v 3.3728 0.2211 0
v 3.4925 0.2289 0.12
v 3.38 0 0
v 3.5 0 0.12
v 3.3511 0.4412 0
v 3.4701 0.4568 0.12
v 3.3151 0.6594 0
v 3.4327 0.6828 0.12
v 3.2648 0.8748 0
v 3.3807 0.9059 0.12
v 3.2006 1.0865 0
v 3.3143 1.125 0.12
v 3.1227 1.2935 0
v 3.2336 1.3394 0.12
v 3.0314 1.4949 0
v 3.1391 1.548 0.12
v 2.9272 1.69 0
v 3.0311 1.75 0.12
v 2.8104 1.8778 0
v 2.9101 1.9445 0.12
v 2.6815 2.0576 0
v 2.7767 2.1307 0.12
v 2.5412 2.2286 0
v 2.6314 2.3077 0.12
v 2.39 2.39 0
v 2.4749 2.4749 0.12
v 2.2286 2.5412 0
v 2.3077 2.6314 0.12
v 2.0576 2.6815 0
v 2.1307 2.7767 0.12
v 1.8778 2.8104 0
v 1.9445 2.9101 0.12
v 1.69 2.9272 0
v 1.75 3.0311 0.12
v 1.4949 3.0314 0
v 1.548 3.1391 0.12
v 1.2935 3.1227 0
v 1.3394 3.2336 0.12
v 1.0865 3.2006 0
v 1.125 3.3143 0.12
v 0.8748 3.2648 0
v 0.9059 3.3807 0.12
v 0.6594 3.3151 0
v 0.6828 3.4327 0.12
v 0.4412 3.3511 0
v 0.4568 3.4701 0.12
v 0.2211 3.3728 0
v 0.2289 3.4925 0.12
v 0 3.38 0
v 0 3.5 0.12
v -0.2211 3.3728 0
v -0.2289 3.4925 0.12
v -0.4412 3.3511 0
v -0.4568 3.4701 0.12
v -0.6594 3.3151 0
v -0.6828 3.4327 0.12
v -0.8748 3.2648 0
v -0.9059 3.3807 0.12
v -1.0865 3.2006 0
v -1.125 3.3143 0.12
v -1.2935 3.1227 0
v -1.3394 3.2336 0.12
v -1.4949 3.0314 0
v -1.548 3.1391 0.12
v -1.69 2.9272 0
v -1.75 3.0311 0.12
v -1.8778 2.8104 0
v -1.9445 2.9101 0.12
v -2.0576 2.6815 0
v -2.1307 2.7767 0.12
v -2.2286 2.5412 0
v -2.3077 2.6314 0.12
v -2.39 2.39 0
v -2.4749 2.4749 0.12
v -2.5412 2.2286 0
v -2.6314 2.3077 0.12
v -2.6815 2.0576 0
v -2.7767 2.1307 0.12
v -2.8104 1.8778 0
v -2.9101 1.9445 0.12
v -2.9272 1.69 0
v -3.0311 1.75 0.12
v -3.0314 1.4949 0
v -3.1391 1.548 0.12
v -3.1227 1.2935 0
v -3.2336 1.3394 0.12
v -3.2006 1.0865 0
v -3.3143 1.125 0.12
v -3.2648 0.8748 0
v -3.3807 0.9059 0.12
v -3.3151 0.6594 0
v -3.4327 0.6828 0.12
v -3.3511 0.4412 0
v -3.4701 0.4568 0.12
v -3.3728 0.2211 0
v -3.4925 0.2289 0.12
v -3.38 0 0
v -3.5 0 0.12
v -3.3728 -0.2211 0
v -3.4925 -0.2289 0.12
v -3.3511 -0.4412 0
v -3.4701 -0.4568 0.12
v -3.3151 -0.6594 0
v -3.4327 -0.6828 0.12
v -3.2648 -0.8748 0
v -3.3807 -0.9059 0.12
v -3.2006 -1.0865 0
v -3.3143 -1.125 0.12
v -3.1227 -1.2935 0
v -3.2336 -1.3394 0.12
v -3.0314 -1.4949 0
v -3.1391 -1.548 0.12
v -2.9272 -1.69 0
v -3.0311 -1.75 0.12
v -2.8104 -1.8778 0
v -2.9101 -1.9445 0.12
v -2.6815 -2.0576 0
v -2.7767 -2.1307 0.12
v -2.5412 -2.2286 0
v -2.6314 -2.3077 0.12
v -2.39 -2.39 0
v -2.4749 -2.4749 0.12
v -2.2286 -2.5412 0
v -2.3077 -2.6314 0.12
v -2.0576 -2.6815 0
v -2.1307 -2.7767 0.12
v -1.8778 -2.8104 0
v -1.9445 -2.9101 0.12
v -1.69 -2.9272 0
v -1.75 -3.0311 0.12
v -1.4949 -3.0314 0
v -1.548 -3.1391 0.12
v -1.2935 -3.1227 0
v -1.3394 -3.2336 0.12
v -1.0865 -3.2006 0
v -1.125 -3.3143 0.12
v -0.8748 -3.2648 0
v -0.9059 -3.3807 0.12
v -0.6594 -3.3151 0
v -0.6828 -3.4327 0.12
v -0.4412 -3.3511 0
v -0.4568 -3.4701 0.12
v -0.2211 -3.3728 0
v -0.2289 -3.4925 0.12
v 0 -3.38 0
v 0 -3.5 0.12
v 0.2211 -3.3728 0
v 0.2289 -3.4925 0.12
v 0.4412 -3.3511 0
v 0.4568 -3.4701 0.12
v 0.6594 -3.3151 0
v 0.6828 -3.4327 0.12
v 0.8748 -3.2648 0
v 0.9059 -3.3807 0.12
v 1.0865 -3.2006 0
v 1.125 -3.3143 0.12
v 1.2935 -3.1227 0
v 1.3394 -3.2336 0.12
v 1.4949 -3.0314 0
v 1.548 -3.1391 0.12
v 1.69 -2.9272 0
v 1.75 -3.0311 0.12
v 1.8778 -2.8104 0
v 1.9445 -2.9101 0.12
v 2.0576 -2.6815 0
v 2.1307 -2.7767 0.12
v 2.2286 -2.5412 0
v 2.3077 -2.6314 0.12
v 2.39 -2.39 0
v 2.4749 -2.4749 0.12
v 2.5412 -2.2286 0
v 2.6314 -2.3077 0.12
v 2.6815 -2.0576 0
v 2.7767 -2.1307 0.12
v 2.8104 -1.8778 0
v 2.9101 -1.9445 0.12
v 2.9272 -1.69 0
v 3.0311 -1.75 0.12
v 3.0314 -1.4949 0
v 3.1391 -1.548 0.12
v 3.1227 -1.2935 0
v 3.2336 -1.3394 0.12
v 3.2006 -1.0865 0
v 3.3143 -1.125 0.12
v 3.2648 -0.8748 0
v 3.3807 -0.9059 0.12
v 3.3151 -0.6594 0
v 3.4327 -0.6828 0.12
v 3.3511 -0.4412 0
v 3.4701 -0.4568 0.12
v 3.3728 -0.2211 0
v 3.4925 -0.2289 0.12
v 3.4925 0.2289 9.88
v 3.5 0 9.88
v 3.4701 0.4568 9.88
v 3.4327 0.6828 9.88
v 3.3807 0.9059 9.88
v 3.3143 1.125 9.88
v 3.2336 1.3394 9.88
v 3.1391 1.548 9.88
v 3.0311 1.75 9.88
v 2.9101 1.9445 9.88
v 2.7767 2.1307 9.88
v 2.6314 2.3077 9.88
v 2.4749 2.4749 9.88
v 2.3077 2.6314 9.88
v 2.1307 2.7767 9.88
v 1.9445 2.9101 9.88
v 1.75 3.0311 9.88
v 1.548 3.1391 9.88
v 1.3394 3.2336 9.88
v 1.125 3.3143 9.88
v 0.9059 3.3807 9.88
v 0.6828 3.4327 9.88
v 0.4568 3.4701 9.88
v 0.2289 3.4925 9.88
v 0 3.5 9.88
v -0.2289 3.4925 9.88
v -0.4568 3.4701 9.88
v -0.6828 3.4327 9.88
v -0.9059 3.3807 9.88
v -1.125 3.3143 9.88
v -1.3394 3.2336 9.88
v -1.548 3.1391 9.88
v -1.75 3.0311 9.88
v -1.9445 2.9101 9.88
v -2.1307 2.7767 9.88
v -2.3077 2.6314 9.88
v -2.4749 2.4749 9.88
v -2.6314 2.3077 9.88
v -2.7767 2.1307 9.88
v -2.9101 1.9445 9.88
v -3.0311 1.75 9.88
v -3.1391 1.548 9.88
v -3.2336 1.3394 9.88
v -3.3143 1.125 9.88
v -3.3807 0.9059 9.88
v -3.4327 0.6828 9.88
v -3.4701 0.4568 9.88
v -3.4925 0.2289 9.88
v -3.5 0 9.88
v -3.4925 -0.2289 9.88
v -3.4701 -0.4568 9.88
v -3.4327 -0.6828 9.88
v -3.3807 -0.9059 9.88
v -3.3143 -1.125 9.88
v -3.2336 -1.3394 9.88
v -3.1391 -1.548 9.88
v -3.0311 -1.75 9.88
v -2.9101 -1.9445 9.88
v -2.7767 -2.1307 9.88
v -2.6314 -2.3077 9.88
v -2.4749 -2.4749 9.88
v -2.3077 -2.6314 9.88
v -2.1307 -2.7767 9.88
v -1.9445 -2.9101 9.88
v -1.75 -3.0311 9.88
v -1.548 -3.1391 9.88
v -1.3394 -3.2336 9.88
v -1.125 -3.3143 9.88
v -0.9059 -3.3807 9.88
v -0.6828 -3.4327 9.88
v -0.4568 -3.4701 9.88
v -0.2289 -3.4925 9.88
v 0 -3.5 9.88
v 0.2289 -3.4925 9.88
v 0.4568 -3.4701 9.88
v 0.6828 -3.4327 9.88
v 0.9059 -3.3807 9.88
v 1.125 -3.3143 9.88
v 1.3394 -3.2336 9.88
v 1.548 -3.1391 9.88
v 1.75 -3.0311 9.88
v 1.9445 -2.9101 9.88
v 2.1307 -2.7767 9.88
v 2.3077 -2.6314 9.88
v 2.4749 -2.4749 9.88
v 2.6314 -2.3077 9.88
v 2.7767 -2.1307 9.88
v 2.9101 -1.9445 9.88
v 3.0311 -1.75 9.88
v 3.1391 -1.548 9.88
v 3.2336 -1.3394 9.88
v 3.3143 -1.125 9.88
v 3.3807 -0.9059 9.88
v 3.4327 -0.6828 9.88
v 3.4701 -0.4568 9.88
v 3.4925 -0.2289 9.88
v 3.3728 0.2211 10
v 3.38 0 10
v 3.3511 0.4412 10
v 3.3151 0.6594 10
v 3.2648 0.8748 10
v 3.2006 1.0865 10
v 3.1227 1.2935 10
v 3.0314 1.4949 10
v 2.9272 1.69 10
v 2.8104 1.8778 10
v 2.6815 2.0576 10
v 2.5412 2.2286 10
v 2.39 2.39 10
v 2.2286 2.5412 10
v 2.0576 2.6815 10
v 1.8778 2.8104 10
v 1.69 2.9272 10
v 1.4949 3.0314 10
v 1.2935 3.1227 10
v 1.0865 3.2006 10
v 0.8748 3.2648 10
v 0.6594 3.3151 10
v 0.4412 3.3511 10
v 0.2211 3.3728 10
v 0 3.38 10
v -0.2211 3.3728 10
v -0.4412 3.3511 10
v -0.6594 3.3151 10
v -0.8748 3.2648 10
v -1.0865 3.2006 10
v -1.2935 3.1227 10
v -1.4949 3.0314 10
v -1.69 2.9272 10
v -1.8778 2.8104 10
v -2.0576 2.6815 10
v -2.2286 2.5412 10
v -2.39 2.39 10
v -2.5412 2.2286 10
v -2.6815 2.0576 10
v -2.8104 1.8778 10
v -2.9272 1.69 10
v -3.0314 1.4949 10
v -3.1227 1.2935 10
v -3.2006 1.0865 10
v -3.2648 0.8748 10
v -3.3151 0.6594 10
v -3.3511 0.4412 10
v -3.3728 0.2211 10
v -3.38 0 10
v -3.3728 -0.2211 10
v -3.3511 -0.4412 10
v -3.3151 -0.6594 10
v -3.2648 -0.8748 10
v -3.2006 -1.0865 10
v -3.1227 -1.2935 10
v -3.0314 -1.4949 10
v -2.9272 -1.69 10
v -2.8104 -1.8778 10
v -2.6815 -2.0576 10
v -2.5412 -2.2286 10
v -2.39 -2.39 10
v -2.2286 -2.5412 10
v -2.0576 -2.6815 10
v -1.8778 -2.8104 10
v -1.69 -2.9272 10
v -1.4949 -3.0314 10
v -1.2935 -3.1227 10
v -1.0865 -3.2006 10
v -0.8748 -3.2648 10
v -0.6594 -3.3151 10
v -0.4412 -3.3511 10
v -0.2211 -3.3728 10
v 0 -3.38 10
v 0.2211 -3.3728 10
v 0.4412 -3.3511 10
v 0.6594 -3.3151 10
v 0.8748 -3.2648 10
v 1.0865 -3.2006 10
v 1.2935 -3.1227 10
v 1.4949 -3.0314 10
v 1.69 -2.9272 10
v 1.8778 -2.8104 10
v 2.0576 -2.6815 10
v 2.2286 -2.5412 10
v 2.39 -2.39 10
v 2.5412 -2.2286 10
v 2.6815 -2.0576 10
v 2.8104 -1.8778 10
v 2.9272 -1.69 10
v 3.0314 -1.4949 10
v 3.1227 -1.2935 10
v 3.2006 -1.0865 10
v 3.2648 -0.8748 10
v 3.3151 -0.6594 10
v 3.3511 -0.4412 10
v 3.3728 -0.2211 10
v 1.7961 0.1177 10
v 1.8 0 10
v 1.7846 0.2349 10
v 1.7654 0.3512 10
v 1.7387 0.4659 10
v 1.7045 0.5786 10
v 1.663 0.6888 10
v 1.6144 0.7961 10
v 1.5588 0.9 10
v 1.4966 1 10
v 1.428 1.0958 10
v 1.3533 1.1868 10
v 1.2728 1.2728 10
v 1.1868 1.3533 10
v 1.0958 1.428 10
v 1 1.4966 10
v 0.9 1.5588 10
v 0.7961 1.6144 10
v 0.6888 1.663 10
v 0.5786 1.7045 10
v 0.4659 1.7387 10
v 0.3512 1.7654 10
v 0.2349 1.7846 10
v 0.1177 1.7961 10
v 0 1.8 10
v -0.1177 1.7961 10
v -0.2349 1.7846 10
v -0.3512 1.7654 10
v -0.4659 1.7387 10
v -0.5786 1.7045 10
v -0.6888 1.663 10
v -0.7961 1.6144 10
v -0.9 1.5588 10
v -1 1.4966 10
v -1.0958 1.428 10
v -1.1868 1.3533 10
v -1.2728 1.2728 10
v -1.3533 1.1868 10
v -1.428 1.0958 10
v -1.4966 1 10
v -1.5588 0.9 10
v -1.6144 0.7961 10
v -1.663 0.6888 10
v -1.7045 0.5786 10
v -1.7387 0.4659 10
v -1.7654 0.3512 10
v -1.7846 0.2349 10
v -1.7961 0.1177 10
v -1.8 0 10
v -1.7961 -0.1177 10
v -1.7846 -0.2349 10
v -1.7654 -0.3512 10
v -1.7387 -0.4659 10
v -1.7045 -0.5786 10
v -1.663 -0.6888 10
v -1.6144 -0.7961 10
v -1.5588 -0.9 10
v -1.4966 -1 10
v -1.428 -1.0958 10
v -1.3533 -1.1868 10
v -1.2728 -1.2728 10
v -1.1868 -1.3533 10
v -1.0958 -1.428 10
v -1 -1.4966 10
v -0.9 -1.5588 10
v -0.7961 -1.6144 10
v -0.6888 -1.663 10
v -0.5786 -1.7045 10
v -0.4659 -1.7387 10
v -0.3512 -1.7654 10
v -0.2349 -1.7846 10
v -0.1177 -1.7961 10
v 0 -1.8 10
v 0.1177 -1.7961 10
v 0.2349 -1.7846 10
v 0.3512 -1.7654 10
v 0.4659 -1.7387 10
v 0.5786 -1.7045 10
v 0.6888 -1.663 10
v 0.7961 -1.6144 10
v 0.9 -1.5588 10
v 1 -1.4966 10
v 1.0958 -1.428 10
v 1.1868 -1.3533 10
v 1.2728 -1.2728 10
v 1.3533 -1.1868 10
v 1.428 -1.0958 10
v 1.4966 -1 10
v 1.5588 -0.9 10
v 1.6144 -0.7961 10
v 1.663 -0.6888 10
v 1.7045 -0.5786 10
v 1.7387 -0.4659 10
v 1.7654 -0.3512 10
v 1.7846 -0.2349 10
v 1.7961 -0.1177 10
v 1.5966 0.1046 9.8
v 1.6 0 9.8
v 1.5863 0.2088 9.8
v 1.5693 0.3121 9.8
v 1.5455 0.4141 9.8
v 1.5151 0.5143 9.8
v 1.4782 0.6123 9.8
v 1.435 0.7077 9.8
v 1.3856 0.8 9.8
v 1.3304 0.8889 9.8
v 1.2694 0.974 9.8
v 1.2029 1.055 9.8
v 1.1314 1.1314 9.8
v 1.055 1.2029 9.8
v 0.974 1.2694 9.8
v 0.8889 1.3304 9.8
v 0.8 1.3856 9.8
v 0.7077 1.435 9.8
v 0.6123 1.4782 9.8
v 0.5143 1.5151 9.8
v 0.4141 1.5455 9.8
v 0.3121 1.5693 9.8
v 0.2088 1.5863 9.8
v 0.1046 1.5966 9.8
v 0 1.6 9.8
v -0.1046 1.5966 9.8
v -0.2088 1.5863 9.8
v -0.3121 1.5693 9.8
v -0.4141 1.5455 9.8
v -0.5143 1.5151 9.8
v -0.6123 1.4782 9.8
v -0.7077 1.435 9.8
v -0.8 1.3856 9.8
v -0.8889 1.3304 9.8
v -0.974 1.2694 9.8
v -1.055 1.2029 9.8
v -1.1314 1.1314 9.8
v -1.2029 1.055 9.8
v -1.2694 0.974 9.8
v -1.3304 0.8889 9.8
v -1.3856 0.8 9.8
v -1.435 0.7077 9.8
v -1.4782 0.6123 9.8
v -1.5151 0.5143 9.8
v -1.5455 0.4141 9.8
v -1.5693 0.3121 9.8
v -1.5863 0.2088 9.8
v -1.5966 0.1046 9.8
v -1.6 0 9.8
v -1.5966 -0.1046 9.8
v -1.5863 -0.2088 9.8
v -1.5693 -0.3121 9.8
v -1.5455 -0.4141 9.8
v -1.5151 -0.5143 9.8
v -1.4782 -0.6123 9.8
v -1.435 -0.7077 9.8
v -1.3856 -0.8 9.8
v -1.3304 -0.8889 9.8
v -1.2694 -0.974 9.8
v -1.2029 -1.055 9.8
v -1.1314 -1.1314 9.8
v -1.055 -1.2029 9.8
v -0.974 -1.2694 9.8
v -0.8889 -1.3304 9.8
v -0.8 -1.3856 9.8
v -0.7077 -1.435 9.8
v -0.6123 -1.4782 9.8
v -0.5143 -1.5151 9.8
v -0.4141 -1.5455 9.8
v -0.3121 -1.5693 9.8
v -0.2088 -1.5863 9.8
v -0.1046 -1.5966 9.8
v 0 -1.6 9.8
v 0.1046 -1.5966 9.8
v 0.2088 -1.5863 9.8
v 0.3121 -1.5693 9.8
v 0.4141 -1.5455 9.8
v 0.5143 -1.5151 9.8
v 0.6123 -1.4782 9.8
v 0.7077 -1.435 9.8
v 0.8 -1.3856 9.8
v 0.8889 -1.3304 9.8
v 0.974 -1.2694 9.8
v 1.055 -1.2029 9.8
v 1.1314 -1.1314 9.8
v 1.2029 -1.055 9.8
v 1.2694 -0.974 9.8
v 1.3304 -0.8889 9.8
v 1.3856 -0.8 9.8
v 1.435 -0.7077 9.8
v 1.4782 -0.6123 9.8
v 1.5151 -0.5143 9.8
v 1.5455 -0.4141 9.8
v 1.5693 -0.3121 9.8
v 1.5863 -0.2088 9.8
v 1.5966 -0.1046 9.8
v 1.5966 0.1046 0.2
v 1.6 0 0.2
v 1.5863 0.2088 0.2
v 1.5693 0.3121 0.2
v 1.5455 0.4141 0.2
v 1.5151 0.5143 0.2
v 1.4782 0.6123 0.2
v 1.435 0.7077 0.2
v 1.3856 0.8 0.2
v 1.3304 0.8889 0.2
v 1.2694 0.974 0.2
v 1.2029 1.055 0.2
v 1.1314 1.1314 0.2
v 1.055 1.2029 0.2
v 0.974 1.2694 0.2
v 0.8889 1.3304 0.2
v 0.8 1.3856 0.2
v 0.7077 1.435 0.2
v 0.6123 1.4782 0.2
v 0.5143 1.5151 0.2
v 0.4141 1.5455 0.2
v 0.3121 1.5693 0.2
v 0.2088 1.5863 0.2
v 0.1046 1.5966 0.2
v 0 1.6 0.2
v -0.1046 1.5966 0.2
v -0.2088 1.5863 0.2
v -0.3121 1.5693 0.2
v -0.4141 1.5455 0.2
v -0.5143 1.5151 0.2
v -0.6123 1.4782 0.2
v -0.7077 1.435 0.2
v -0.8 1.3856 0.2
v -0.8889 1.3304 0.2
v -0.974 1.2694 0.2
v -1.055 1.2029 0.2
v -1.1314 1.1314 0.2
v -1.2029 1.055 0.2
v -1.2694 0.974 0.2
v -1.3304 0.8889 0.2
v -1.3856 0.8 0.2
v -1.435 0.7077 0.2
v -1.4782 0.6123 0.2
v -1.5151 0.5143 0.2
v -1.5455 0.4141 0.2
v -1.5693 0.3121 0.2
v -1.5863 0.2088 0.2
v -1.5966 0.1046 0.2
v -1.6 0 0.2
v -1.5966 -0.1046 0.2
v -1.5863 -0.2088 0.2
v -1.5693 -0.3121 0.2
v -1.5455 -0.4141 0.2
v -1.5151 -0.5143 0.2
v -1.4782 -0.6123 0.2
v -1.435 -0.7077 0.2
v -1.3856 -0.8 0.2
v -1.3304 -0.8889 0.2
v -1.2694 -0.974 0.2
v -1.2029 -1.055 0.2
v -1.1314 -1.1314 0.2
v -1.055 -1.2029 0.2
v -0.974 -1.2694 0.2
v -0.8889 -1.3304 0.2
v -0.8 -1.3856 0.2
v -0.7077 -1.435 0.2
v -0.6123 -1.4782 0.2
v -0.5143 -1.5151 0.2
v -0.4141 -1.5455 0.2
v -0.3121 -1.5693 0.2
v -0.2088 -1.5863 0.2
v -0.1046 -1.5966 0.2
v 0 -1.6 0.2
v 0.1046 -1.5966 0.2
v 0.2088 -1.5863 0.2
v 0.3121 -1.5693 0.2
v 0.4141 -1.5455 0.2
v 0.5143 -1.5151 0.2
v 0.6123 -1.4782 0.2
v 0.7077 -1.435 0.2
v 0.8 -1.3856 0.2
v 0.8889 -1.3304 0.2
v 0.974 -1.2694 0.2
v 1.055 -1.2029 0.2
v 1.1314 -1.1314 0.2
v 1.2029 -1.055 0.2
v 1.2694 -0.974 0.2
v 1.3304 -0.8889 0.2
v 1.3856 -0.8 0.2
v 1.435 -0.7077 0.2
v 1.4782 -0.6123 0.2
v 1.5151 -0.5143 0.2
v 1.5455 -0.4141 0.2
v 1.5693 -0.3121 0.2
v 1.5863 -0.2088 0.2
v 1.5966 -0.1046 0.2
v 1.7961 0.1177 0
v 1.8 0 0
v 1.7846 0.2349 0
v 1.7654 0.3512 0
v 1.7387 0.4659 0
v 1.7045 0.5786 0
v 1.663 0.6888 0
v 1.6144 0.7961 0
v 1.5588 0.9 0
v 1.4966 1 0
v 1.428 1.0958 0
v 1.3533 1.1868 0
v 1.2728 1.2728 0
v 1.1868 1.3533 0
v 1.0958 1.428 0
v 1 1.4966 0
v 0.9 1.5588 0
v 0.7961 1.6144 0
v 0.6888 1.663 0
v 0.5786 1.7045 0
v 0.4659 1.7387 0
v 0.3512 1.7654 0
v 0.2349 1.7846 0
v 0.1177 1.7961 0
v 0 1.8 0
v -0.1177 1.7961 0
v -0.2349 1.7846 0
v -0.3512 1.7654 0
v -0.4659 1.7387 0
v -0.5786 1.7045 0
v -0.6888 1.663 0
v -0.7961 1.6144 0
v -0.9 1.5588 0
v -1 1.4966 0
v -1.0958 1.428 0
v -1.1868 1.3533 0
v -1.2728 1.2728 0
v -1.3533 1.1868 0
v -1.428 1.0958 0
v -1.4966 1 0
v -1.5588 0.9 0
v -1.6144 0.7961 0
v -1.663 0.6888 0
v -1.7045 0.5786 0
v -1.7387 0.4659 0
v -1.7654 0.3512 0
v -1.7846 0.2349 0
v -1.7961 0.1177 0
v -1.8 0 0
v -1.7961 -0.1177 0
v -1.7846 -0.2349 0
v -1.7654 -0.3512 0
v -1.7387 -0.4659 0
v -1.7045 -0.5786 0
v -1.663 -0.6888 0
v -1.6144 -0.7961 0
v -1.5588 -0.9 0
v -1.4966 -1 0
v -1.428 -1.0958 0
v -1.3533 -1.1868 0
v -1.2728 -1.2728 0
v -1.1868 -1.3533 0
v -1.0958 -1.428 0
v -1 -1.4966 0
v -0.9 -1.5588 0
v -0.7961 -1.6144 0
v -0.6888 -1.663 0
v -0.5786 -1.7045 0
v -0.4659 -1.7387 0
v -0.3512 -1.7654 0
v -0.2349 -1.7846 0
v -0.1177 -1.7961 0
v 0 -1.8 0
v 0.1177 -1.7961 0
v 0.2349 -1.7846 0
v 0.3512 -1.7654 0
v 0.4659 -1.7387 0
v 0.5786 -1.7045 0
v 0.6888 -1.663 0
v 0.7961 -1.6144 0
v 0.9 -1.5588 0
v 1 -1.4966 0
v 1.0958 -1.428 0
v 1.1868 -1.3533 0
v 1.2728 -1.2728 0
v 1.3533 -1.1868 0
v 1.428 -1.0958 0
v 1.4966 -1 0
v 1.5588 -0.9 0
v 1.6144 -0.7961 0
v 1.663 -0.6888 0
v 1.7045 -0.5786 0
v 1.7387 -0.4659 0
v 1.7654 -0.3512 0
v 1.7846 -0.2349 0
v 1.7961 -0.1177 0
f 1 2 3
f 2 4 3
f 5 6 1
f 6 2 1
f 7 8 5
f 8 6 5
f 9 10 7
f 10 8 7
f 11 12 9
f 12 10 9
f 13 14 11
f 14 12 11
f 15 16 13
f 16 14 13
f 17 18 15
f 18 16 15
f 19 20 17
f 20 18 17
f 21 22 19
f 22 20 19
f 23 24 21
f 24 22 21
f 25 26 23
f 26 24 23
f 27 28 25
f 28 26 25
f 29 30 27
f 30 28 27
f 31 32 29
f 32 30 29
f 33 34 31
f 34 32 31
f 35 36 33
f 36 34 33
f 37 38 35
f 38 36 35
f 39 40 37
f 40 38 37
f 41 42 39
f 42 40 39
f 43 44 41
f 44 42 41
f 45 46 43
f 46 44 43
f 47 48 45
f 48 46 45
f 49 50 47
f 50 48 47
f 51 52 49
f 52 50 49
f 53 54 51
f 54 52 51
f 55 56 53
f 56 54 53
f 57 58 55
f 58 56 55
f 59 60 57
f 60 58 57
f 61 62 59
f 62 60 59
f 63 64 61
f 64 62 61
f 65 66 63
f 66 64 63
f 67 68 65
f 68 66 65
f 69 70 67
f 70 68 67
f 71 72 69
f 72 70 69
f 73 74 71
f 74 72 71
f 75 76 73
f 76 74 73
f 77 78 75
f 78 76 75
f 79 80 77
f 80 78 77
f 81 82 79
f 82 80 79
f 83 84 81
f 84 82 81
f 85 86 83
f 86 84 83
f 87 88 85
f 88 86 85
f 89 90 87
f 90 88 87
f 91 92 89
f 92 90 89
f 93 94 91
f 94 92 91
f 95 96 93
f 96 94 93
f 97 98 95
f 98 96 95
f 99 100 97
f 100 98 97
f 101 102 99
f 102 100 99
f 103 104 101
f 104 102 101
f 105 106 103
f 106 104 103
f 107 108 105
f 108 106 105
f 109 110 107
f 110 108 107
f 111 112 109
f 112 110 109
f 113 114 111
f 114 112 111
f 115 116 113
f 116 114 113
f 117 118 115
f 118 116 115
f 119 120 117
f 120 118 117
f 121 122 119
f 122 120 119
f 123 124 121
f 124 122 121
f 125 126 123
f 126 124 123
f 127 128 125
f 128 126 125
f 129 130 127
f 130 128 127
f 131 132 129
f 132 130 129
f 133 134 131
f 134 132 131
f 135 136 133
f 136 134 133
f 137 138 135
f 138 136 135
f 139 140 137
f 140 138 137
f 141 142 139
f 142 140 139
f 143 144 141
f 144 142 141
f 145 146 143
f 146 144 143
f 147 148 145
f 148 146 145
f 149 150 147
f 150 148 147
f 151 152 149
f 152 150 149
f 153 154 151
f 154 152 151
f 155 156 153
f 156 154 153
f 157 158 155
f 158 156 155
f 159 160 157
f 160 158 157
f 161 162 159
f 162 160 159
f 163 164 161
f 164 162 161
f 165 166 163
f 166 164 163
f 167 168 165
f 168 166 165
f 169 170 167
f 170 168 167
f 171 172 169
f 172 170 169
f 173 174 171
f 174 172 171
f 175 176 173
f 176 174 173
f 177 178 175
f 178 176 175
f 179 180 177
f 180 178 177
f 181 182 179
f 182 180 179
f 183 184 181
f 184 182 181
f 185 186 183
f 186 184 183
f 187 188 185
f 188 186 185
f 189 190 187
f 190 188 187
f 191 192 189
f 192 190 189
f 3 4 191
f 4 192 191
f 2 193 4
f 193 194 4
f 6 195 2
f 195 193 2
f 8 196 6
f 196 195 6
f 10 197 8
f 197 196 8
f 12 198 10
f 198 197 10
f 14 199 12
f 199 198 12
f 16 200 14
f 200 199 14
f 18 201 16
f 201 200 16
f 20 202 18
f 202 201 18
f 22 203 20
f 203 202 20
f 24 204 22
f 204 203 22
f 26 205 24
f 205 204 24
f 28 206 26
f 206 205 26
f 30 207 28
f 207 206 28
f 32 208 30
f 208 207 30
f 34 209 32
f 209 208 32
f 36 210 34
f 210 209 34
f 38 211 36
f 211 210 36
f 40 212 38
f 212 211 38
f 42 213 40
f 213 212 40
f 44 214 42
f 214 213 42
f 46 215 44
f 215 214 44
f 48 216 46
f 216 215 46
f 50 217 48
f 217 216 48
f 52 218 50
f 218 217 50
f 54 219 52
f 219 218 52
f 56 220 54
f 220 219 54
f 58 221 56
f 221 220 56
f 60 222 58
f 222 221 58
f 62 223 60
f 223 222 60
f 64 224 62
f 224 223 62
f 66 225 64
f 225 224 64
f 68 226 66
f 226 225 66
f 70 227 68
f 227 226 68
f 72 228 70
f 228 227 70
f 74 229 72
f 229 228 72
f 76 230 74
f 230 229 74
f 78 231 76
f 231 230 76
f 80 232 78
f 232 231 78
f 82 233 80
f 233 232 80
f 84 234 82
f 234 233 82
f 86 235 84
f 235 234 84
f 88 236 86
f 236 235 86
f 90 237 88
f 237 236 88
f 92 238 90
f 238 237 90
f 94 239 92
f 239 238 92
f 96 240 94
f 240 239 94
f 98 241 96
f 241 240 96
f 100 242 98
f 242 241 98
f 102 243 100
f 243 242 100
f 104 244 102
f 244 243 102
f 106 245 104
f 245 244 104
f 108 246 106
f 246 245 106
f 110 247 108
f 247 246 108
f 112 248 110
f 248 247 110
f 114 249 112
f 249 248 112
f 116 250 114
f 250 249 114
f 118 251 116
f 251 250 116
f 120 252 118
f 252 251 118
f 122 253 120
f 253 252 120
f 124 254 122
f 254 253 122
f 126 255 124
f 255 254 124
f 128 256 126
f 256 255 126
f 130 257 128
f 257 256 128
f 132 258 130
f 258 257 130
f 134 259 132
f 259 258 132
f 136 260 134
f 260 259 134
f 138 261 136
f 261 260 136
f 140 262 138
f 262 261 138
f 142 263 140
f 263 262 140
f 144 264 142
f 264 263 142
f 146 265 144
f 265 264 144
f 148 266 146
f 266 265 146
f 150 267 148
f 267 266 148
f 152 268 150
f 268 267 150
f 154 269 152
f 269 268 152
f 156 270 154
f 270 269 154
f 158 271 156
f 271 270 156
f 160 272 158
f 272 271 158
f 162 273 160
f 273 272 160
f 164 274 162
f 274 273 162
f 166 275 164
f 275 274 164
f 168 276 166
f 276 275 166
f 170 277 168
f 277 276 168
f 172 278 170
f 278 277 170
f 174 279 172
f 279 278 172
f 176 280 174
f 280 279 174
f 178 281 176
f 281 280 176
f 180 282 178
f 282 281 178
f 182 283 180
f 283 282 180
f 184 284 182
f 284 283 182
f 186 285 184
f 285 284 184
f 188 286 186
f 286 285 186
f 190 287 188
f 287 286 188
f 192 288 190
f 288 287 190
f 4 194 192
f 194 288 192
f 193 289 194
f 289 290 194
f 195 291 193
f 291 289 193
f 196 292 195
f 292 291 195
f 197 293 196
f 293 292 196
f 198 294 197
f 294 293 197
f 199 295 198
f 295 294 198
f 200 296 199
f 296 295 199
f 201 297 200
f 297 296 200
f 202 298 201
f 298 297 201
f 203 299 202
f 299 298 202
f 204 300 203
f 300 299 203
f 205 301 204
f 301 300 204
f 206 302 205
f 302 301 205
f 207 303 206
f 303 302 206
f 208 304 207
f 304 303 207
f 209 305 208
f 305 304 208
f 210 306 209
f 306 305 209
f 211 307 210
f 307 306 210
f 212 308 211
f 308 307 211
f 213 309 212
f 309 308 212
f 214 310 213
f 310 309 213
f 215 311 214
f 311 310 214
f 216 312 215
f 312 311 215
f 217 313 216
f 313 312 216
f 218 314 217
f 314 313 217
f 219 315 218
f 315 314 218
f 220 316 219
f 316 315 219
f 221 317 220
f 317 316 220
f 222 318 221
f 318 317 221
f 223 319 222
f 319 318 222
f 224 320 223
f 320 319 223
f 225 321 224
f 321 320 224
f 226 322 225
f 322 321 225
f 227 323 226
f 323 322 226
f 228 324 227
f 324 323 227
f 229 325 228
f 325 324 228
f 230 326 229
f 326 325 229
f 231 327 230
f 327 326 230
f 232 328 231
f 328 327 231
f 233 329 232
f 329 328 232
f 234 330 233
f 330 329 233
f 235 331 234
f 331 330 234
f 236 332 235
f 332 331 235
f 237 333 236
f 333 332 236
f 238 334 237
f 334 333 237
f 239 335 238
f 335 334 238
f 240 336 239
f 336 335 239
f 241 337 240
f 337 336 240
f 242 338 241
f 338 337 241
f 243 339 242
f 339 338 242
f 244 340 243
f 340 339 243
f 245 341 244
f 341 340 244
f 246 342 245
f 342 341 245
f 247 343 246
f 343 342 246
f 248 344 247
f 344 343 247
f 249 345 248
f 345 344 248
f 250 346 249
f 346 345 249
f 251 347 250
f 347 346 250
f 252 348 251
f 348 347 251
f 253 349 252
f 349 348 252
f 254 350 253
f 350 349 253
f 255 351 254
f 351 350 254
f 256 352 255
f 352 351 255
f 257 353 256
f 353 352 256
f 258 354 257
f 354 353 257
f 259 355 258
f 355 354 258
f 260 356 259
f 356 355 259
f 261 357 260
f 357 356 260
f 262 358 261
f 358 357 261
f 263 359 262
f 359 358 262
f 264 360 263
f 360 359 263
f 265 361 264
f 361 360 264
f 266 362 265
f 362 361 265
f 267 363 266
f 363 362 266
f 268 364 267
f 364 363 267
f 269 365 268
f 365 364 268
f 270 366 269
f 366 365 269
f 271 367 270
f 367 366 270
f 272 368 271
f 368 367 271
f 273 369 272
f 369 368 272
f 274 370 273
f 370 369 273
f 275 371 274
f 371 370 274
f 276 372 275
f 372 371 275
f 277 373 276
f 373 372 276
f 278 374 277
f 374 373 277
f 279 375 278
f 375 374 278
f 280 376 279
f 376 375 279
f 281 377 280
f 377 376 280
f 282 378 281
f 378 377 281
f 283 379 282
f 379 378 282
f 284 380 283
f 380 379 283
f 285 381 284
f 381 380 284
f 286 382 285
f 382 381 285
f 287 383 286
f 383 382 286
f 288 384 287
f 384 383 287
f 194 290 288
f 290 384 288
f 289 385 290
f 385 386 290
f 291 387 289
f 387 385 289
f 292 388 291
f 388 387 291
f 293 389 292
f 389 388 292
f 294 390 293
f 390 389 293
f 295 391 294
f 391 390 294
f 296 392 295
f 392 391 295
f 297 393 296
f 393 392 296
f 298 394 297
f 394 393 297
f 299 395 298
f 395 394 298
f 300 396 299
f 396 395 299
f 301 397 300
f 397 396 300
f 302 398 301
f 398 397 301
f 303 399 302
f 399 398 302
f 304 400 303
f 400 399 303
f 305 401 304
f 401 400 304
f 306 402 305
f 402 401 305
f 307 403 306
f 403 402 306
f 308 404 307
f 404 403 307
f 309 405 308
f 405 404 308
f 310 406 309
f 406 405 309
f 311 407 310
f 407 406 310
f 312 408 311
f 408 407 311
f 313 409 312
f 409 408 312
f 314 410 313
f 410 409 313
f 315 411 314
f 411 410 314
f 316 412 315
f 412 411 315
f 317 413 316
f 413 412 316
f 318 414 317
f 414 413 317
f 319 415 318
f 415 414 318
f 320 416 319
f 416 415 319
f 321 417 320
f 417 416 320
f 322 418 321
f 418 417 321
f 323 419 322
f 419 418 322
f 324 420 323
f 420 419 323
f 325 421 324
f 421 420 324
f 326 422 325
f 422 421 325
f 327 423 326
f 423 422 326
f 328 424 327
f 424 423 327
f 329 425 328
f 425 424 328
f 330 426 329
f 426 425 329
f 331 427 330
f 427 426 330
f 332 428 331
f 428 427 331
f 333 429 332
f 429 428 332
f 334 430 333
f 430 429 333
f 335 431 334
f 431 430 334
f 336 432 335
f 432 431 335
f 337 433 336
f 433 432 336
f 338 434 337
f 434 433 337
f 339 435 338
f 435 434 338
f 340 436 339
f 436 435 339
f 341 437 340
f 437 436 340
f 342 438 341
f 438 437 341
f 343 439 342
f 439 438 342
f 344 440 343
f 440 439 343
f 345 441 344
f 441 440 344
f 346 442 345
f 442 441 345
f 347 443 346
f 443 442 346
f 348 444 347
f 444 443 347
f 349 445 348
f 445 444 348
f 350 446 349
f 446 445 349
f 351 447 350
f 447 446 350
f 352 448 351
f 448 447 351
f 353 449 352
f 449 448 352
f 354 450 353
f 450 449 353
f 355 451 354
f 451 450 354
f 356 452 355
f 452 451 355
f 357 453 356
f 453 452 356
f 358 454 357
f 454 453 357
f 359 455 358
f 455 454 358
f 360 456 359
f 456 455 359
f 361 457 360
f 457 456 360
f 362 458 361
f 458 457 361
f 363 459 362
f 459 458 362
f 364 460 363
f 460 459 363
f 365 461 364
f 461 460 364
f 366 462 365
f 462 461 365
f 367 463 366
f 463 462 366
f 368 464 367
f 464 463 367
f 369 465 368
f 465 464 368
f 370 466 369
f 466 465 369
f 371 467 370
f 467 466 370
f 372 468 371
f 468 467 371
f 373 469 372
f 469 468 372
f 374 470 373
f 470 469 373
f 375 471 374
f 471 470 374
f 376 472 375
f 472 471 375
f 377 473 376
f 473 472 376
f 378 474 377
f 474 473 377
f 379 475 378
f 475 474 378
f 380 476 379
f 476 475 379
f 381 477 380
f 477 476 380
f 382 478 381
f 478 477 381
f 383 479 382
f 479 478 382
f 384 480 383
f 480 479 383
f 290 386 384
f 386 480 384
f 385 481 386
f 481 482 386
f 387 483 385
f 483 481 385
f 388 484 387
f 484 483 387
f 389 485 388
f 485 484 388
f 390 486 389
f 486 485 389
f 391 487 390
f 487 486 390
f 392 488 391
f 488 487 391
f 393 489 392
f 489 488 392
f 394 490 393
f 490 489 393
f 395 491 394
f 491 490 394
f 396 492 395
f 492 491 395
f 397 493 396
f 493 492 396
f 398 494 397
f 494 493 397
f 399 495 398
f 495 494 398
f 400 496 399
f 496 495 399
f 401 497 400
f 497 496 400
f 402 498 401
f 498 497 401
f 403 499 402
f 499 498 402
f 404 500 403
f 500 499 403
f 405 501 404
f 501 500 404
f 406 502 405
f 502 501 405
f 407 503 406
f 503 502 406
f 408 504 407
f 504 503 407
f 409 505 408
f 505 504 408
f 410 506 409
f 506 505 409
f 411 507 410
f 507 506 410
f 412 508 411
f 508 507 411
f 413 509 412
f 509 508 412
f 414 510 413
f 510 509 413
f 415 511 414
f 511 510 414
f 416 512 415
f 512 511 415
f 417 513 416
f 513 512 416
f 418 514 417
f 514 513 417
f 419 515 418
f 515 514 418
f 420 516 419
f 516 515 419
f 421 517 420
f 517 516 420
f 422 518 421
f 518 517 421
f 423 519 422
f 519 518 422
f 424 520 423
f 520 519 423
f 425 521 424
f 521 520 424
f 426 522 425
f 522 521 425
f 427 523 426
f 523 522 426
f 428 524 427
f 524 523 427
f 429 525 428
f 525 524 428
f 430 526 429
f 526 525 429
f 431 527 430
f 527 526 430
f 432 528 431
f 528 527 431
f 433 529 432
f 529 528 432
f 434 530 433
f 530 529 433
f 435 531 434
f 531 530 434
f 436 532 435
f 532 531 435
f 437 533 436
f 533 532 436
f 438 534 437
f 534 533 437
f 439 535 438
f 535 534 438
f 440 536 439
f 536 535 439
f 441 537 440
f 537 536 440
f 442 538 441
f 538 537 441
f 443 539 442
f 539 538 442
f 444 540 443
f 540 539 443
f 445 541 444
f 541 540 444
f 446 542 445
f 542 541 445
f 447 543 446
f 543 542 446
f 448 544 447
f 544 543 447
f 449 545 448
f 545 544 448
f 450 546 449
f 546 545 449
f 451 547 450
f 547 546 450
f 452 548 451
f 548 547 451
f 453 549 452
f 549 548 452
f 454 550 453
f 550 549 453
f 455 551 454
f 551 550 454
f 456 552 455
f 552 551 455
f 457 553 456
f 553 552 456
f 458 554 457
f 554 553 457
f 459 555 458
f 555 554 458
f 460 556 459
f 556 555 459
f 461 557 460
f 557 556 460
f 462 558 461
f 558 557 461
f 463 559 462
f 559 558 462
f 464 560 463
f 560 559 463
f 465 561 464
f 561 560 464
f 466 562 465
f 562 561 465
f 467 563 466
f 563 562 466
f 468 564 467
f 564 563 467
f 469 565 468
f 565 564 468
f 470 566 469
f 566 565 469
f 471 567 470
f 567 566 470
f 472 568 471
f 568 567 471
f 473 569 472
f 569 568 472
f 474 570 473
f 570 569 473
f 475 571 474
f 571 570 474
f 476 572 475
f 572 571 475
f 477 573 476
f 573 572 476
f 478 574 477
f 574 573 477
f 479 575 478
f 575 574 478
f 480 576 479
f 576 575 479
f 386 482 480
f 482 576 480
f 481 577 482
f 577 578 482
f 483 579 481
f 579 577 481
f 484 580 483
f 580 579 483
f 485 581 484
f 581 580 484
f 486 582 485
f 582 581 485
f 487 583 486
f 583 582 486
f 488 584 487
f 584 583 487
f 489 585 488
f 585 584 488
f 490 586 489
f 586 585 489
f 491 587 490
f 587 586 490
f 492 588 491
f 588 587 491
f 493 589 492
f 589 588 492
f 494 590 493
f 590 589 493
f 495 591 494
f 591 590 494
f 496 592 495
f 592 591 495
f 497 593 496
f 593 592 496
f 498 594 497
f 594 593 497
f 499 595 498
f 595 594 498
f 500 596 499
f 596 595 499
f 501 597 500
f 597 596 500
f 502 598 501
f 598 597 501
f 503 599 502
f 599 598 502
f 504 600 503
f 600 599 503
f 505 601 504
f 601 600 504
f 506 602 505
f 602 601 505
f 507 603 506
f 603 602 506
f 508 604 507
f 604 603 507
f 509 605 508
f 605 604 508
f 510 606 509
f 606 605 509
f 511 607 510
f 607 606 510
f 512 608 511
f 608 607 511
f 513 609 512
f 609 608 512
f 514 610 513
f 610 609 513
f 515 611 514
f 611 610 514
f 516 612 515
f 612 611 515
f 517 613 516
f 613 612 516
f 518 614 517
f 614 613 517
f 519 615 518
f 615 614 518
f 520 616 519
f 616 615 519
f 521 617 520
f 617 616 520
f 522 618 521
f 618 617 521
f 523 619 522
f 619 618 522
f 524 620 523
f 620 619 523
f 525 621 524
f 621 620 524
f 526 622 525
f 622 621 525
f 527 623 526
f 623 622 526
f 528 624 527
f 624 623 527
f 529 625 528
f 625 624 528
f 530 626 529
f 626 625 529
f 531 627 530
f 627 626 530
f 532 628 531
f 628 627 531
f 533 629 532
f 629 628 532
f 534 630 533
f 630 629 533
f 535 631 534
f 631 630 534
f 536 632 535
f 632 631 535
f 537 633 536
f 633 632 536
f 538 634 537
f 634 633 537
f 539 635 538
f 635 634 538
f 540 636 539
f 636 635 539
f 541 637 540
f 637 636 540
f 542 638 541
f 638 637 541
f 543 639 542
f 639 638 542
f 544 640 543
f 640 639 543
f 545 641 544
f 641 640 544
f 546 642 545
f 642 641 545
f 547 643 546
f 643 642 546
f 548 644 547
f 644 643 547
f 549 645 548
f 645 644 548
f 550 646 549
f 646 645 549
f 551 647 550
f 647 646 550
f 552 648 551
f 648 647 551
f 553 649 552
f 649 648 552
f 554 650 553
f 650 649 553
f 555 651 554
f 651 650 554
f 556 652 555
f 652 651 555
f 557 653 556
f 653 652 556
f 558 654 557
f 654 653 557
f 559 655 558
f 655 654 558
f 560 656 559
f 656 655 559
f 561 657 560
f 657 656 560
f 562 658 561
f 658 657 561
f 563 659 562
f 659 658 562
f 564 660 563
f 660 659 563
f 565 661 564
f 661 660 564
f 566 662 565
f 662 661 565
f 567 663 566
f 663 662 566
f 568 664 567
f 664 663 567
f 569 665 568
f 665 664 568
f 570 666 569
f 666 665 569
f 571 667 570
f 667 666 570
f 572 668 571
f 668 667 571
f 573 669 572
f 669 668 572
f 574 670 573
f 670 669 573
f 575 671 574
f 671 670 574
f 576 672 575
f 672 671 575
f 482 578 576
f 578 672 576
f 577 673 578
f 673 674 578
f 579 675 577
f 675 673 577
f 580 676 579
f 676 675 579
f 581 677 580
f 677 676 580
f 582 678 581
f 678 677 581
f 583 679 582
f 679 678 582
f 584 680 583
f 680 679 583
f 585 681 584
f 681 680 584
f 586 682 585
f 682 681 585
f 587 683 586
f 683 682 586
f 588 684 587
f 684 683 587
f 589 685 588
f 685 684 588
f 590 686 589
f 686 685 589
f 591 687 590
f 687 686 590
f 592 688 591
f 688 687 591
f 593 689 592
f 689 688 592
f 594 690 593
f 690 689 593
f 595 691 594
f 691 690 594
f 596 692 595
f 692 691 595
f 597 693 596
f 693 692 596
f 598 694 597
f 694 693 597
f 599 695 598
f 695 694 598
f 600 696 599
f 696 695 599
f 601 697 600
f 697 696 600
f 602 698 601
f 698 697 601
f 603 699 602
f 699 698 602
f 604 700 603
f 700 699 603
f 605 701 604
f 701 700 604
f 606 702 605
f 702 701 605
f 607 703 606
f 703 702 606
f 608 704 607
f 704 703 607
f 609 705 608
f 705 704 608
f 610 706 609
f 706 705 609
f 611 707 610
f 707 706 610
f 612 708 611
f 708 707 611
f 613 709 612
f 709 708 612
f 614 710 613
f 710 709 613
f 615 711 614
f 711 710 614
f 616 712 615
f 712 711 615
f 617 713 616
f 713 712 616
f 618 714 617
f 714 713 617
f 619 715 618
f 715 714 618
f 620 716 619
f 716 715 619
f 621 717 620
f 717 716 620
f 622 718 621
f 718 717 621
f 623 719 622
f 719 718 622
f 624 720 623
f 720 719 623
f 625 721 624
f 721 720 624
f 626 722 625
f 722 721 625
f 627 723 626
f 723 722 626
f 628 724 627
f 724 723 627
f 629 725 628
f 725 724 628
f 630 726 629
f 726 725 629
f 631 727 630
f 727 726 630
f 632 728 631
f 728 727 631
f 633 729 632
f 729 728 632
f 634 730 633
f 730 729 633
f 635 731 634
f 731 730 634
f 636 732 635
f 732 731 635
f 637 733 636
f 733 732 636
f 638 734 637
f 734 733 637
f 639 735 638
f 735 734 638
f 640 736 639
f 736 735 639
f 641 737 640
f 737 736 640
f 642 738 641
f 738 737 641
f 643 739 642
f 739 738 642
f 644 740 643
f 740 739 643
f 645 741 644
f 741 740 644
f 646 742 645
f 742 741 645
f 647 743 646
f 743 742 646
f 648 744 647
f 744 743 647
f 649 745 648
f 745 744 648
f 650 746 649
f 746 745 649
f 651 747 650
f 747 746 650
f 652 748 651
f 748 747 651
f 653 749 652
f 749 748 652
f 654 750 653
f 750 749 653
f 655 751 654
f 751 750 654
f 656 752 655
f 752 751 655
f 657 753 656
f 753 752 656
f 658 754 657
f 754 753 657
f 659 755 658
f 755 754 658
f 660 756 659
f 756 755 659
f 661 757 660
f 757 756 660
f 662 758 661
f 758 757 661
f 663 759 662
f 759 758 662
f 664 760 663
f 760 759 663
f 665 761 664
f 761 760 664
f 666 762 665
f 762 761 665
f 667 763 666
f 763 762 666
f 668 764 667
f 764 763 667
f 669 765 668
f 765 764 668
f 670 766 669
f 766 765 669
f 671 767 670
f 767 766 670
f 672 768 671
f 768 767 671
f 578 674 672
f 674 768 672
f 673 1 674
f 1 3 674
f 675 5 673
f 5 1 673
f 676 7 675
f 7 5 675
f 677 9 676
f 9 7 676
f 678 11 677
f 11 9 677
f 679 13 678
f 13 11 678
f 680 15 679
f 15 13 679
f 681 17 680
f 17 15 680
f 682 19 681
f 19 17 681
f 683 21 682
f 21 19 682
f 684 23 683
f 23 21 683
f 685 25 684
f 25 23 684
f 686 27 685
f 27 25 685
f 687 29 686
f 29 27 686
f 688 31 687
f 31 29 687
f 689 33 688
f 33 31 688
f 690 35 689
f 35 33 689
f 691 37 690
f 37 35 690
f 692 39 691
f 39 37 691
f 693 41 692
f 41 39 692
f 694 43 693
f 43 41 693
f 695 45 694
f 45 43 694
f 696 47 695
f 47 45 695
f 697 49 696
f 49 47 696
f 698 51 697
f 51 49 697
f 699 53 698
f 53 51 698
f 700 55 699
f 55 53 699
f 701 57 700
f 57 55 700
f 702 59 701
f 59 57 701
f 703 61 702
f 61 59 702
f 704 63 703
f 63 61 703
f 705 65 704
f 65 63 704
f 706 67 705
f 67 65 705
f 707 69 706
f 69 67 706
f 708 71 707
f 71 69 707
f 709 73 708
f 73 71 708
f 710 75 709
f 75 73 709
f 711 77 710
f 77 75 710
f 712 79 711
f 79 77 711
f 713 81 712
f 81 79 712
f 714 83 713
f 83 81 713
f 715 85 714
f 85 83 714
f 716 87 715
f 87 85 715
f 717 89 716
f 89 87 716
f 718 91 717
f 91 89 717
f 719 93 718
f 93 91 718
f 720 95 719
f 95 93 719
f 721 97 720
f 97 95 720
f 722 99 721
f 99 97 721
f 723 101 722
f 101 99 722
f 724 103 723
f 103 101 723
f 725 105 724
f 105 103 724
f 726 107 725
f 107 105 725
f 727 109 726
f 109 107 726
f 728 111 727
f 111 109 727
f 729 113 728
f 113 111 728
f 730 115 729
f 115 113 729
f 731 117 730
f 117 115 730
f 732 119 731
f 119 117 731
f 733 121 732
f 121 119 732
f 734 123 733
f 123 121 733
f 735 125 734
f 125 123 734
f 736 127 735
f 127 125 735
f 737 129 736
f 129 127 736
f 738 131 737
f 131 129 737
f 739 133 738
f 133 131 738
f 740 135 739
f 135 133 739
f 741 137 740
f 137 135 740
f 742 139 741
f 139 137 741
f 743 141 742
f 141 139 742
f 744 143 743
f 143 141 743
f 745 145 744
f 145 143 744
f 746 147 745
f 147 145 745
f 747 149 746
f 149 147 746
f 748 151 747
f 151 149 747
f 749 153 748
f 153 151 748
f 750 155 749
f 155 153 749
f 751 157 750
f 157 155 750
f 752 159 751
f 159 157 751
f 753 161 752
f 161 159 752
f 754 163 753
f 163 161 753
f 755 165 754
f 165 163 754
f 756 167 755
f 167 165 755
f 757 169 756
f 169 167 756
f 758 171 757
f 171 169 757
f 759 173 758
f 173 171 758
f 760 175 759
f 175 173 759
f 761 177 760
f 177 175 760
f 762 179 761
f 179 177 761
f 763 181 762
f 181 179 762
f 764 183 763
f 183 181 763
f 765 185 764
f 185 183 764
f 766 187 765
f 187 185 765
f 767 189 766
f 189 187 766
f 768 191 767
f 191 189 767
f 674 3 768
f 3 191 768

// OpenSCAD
// OOMP generic catalogue model; units: mm.
// Stud length is additional to body depth. Tapping depths are model assumptions.
variant = "full"; // [full, display]
family = "spacer";
connection_type = "plain";
depth_mm = 10;
stud_length_mm = 0;
tapped_depth_mm = 0;
bore_mm = 3.2;
outer_diameter_mm = 7;
across_flats_mm = 6;
thread_nominal_diameter_mm = 3;
thread_pitch_mm = 0.5;
edge_chamfer_mm = 0.12;
mouth_chamfer_mm = 0.2;
angular_segments = 96;
samples_per_pitch = 16;

// Boundary travels up the outside, then down any tapped/plain bore.
// Equal-height rings at shoulders form the annular shoulder faces.
n = angular_segments;
threaded = family == "standoff";
has_stud = connection_type == "stud_to_tapped" || connection_type == "stud_to_stud";
two_studs = connection_type == "stud_to_stud";
through = !threaded || connection_type == "tapped_to_tapped";
pitch = thread_pitch_mm;
diameter = threaded ? thread_nominal_diameter_mm : bore_mm;
minor = diameter - 5*sqrt(3)*pitch/8;
transition = mouth_chamfer_mm + (threaded ? 5*sqrt(3)*pitch/16 : 0);
tip_chamfer = mouth_chamfer_mm + 17*sqrt(3)*pitch/48;
function sorted(v) = len(v)<=1 ? v : let(p=v[0])
    concat(sorted([for(x=v) if(x<p-1e-8) x]), [p], sorted([for(x=v) if(x>p+1e-8) x]));
function reverse(v) = [for(i=[len(v)-1:-1:0]) v[i]];
function theta(i) = i*360/n;
function fract(x) = x-floor(x);
function phase_distance(i,z) = abs(fract(z/pitch-theta(i)/360+0.5)-0.5);
function thread_r(i,z) = minor/2 + min(5*sqrt(3)*pitch/16,
    max(0,(phase_distance(i,z)-0.125)*pitch*sqrt(3)));
function stud_r(i,z,tip) = min(diameter/2 - (variant=="full" ?
    min(17*sqrt(3)*pitch/48,max(0,(phase_distance(i,z)-0.0625)*pitch*sqrt(3))) : 0),
    diameter/2-tip_chamfer+abs(z-tip));
function body_r(i,z) = (threaded ? across_flats_mm/2/cos(theta(i)%60-30) : outer_diameter_mm/2)
    - max(0,edge_chamfer_mm-min(z,depth_mm-z));
function bore_r(i,z) = max(threaded ? (variant=="full" ? thread_r(i,z) : minor/2) : diameter/2,
    diameter/2+mouth_chamfer_mm-(through ? min(z,depth_mm-z) : depth_mm-z));
function stud_z(a,b,tip) = let(count=variant=="full" ? ceil(stud_length_mm/pitch*samples_per_pitch) : 1)
    sorted(concat([for(i=[0:count]) a+(b-a)*i/count], [tip==a ? tip+tip_chamfer : tip-tip_chamfer]));
body_z = sorted([0,edge_chamfer_mm,depth_mm-edge_chamfer_mm,depth_mm]);
low = through ? 0 : depth_mm-tapped_depth_mm;
count = threaded && variant=="full" ? ceil((depth_mm-low)/pitch*samples_per_pitch) : 1;
bore_z = two_studs ? [] : reverse(sorted(concat(
    [for(i=[0:count]) low+(depth_mm-low)*i/count],
    [depth_mm-mouth_chamfer_mm,depth_mm-transition],
    through ? [mouth_chamfer_mm,transition] : [])));
// Ring descriptors: [height, kind, tip]. Kind: 0 body, 1 stud, 2 bore.
rings = concat(
    has_stud ? [for(z=stud_z(-stud_length_mm,0,-stud_length_mm)) [z,1,-stud_length_mm]] : [],
    [for(z=body_z) [z,0,0]],
    two_studs ? [for(z=stud_z(depth_mm,depth_mm+stud_length_mm,depth_mm+stud_length_mm)) [z,1,depth_mm+stud_length_mm]] : [],
    [for(z=bore_z) [z,2,0]]);
function radius(i,ring) = ring[1]==0 ? body_r(i,ring[0]) :
    ring[1]==1 ? stud_r(i,ring[0],ring[2]) : bore_r(i,ring[0]);
points = concat([for(ring=rings) for(i=[0:n-1])
    [radius(i,ring)*cos(theta(i)),radius(i,ring)*sin(theta(i)),ring[0]]],
    through ? [] : [[0,0,rings[0][0]],[0,0,rings[len(rings)-1][0]]]);
center = len(rings)*n;
last = (len(rings)-1)*n;
// OpenSCAD winding is opposite to STL winding.
faces = concat(
    [for(j=[0:len(rings)-(through ? 1 : 2)]) for(i=[0:n-1]) each
        let(a=j*n+i,b=j*n+(i+1)%n,c=((j+1)%len(rings))*n+(i+1)%n,d=((j+1)%len(rings))*n+i)
        [[a,c,b],[a,d,c]]],
    through ? [] : [for(i=[0:n-1]) each let(k=(i+1)%n)
        [[center,i,k],[center+1,last+k,last+i]]]);
assert(family=="spacer" || family=="standoff");
assert(!threaded || connection_type=="tapped_to_tapped" || has_stud);
assert(depth_mm>0 && diameter>0 && pitch>0);
assert(variant=="full" || variant=="display");
assert(n>=24 && n%12==0 && samples_per_pitch>=8);
assert(mouth_chamfer_mm>0 && mouth_chamfer_mm<depth_mm/2);
assert(edge_chamfer_mm>=0 && edge_chamfer_mm<depth_mm/2);
assert(diameter+4*max(mouth_chamfer_mm,edge_chamfer_mm) < (threaded ? across_flats_mm : outer_diameter_mm));
assert(!has_stud || stud_length_mm>2*mouth_chamfer_mm);
assert(!through || !threaded || 2*transition<depth_mm);
assert(connection_type!="stud_to_tapped" || (tapped_depth_mm>transition && tapped_depth_mm<depth_mm));
color([0.86,0.85,0.81]) polyhedron(points=points,faces=faces,convexity=20);
